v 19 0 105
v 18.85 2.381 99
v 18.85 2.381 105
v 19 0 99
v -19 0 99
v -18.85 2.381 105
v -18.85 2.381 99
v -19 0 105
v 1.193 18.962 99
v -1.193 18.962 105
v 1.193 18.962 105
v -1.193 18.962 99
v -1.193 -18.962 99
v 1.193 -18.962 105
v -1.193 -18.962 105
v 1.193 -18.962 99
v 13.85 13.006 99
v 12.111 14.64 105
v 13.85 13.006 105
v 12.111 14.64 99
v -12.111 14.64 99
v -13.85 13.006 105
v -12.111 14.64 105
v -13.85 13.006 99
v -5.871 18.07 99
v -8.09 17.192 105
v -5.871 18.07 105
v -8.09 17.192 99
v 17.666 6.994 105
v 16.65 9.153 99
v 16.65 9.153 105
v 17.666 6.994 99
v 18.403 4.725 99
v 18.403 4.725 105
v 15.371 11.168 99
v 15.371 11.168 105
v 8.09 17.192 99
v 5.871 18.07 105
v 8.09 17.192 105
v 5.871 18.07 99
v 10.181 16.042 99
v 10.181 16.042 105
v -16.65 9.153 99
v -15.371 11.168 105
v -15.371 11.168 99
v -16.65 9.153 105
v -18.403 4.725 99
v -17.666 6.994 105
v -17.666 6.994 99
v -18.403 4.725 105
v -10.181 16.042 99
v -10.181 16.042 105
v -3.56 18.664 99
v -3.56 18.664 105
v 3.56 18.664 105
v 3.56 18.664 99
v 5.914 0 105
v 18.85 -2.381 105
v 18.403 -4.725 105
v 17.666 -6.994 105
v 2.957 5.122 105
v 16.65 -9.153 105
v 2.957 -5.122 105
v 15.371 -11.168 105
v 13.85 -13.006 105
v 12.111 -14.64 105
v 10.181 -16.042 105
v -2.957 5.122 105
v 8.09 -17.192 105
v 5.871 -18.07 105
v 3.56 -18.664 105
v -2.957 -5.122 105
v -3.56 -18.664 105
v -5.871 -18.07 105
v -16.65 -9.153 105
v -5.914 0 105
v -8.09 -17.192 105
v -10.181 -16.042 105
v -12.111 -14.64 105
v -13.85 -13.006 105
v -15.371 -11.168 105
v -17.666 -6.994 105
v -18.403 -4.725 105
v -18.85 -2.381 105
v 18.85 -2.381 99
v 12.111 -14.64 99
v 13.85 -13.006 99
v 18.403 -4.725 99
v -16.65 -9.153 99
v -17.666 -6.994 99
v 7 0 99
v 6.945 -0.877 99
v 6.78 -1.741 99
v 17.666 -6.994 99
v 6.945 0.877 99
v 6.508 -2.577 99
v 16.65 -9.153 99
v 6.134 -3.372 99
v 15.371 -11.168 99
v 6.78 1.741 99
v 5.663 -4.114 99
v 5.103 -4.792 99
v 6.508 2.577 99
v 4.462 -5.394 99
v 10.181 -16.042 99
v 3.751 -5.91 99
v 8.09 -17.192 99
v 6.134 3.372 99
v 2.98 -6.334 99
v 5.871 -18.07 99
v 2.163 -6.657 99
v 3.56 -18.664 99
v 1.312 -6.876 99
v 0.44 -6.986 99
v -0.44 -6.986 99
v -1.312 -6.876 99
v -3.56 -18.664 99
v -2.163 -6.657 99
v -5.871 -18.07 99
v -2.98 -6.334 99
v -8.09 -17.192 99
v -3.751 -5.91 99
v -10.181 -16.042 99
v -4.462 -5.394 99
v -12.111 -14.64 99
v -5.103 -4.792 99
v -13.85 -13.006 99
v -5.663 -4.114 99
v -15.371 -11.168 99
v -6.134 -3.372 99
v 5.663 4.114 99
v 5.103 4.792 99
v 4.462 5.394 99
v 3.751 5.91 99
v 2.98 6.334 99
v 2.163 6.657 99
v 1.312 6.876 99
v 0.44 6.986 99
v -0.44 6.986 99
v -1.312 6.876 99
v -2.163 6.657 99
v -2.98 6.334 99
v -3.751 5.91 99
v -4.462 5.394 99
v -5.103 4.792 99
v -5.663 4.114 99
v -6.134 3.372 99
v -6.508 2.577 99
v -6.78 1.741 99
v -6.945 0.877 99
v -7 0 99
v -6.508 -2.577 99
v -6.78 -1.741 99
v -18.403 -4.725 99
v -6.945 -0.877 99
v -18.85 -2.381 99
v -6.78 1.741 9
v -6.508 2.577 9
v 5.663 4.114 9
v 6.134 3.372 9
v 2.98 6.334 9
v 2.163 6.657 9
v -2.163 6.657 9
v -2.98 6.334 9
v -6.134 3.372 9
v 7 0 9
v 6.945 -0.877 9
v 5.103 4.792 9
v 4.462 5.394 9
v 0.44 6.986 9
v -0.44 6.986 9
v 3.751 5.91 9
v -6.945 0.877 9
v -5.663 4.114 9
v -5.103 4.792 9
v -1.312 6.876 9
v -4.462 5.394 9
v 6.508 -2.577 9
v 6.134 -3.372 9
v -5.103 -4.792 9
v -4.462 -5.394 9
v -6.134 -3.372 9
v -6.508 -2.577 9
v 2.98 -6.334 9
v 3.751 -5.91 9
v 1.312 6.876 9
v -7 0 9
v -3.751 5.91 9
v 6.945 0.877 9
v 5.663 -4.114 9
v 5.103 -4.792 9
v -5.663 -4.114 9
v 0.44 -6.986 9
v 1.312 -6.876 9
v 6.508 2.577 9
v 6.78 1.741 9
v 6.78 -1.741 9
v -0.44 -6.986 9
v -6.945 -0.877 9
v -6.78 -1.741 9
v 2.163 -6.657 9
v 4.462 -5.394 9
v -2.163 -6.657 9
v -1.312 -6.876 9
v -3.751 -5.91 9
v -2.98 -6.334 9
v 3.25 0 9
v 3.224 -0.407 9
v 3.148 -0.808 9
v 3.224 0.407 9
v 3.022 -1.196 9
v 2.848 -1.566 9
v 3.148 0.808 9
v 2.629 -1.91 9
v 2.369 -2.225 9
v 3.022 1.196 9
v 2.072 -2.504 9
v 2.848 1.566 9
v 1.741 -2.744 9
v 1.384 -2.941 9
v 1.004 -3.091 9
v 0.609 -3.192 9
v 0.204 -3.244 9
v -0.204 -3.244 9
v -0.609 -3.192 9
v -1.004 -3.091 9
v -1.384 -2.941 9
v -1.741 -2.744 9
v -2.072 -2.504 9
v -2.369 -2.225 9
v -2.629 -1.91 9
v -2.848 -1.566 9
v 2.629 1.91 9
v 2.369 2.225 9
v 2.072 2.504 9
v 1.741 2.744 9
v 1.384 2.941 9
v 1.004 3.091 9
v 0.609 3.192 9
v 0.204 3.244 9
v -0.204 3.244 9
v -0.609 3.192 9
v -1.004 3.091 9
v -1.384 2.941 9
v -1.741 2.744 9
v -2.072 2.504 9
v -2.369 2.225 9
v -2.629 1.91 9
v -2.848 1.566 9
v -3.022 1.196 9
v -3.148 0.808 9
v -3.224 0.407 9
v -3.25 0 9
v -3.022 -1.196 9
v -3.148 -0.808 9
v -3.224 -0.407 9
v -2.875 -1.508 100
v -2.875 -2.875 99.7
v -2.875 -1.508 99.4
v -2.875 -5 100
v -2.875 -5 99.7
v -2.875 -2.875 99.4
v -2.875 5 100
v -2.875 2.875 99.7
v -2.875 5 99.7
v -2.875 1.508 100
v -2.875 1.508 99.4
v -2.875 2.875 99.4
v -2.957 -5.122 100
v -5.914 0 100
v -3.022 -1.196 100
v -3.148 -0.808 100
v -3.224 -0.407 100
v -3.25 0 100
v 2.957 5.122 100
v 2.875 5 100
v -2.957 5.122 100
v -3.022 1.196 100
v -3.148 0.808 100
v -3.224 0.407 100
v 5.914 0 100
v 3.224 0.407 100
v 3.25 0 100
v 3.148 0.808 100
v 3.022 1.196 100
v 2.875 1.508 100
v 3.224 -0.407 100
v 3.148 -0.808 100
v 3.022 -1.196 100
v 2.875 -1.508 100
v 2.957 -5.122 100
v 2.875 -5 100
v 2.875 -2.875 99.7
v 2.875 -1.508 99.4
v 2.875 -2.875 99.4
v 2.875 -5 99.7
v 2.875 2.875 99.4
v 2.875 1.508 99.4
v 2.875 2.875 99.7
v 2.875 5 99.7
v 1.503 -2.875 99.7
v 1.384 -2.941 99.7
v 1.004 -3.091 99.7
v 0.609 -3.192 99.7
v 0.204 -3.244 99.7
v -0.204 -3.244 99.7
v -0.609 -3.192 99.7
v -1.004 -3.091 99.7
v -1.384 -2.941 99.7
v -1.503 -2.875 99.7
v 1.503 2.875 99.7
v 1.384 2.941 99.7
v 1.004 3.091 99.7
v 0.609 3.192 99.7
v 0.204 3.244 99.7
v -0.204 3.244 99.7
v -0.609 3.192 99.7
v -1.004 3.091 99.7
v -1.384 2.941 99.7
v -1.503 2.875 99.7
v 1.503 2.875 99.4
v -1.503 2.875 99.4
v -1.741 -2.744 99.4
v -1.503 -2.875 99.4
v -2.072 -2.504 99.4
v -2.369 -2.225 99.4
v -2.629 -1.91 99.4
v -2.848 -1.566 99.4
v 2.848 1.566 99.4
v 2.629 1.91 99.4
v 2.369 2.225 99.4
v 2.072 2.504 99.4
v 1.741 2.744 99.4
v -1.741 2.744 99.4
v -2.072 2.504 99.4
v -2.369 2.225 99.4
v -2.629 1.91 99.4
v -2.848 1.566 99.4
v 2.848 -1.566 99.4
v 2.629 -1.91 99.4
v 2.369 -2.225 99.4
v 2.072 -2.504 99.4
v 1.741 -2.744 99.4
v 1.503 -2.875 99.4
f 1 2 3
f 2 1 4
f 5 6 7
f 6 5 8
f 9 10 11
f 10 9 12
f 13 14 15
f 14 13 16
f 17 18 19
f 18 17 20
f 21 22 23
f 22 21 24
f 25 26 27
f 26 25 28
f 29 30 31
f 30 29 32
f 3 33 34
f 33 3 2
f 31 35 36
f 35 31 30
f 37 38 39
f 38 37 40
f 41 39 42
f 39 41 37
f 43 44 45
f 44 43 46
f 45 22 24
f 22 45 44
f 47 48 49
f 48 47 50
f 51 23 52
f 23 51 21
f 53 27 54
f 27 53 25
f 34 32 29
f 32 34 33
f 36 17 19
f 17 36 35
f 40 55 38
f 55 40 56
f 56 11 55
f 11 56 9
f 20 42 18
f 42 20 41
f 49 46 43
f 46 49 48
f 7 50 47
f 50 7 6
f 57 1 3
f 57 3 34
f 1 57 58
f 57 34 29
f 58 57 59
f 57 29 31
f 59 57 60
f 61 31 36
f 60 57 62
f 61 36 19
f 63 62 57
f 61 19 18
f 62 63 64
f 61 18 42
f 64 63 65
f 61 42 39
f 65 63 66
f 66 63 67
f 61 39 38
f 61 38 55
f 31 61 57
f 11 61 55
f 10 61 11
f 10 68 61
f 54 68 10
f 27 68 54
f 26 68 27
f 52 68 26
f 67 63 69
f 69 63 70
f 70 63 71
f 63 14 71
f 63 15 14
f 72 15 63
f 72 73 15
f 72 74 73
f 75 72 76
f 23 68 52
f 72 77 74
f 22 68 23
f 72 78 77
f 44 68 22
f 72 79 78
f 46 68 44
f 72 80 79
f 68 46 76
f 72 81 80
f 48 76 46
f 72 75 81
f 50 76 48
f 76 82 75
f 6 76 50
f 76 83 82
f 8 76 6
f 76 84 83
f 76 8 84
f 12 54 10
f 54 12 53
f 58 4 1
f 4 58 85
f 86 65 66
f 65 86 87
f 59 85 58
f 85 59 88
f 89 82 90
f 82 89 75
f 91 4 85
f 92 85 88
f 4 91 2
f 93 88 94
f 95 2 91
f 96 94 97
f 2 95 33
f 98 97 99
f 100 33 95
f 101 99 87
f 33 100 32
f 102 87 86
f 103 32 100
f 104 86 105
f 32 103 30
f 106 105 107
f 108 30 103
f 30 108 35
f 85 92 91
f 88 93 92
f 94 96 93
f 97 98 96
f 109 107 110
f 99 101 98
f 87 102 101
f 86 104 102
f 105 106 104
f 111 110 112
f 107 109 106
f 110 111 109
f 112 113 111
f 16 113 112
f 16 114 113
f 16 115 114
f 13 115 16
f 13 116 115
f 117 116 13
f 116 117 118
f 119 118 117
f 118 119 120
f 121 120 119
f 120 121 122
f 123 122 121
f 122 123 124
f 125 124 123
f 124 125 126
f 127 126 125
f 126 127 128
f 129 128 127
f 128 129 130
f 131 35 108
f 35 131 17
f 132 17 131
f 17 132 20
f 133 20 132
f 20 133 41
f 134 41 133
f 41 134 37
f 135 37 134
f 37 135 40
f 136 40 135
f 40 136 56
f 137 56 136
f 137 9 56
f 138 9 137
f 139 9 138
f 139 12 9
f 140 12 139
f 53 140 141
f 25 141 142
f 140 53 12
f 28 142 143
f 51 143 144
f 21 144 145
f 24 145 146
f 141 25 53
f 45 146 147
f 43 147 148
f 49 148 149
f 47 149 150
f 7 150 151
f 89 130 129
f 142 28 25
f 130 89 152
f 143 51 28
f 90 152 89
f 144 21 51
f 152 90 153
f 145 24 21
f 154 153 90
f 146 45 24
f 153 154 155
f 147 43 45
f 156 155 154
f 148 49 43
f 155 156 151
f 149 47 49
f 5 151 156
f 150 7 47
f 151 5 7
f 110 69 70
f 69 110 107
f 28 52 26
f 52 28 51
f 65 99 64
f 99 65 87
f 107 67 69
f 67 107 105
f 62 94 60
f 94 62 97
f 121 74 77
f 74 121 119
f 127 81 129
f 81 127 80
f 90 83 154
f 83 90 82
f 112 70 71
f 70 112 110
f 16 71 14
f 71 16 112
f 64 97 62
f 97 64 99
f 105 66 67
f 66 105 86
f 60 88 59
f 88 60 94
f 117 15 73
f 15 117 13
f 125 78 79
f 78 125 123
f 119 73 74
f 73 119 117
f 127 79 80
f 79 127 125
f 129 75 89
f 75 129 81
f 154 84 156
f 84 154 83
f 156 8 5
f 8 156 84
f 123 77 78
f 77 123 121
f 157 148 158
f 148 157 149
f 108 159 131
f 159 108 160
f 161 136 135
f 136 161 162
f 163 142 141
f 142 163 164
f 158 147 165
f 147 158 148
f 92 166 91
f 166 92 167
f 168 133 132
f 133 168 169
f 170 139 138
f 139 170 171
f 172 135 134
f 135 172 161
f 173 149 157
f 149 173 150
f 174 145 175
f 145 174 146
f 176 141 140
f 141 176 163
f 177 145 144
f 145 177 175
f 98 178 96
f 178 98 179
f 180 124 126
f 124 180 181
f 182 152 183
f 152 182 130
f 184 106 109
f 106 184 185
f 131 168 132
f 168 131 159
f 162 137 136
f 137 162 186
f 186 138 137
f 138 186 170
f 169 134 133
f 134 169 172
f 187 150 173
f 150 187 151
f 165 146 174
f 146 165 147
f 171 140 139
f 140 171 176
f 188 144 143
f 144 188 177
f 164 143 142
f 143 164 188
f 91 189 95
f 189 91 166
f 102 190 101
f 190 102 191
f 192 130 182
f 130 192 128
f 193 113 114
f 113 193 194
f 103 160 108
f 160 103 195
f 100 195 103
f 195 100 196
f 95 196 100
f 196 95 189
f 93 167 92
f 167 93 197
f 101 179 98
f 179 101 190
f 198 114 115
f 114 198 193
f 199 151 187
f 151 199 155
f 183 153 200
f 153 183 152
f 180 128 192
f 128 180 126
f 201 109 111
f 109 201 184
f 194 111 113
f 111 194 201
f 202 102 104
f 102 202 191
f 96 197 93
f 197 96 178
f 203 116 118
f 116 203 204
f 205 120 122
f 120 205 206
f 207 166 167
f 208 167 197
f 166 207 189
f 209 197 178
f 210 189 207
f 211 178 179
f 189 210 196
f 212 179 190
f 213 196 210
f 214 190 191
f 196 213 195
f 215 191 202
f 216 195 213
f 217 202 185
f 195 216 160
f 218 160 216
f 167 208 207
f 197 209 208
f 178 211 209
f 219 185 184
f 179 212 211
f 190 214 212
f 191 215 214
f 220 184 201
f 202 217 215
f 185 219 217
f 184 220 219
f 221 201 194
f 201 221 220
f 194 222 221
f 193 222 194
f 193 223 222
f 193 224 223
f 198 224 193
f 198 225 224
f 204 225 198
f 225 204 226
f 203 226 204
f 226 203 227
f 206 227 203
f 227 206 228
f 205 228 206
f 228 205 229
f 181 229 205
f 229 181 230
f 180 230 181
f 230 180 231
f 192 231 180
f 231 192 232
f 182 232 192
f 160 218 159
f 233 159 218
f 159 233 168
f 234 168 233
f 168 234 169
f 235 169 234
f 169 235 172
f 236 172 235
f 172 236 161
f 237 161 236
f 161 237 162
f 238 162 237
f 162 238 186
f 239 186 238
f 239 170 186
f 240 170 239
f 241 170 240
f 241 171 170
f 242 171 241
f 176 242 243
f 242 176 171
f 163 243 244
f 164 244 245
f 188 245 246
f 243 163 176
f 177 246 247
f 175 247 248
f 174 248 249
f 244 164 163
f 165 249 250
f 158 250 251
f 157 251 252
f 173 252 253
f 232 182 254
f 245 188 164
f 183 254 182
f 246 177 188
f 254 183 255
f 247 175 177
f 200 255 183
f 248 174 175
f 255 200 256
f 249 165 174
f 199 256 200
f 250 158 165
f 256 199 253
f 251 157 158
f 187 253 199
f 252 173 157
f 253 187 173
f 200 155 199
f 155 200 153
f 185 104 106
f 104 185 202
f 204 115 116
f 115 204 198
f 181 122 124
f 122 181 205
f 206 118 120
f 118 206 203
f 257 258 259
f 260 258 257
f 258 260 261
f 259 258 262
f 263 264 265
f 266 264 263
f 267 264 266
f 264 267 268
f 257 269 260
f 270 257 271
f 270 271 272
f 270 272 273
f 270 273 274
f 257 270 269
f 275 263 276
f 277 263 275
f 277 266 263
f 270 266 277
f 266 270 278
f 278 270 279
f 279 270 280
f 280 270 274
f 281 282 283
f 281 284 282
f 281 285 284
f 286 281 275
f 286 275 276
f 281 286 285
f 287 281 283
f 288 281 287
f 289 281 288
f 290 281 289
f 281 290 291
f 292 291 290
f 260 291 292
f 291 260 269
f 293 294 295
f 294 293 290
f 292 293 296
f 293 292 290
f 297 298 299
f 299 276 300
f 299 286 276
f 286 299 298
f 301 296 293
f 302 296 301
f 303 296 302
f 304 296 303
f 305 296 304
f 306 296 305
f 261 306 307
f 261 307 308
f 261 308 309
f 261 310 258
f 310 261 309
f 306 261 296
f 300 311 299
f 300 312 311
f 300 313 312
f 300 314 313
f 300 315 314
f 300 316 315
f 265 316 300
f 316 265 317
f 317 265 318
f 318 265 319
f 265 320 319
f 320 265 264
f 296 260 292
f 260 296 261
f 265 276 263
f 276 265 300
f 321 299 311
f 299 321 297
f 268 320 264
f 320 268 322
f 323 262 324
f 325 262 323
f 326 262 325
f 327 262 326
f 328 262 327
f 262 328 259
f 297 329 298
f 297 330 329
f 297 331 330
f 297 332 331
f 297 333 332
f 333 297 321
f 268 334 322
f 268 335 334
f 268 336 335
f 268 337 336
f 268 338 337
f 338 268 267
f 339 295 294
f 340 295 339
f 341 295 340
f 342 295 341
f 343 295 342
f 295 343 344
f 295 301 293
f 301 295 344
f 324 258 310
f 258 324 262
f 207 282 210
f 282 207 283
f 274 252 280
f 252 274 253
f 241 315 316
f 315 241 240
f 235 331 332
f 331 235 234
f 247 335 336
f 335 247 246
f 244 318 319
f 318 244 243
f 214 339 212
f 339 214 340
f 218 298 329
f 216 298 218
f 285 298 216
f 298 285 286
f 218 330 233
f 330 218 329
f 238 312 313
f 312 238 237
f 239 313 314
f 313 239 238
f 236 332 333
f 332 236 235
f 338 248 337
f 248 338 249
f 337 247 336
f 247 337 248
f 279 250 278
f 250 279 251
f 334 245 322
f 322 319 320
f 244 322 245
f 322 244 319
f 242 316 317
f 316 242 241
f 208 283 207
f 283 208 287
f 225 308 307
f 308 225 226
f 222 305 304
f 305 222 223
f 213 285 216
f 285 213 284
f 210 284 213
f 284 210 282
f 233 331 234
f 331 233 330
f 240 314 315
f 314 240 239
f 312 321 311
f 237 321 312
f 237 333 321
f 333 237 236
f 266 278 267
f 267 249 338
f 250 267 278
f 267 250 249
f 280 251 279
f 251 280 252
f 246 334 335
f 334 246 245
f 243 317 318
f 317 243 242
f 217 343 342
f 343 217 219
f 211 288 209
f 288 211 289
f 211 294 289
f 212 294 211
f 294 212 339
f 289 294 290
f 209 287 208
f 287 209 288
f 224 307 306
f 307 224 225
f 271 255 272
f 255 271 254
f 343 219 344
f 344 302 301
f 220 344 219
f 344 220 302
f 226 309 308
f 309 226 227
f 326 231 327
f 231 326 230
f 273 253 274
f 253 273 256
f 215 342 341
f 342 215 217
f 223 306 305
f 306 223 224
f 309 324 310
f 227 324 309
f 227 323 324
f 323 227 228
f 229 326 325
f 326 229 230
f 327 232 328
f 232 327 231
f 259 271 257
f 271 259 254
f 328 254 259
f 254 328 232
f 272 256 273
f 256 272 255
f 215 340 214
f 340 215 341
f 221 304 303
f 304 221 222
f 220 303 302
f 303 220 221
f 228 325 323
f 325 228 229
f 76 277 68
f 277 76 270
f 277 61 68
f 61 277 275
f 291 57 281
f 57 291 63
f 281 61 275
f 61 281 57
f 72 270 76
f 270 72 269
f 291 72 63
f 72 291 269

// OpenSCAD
$fn = 50;


difference() {
	union() {
		translate(v = [0, 0, 99.0000000000]) {
			cylinder(h = 6, r = 19.0000000000);
		}
		translate(v = [0, 0, 9.0000000000]) {
			cylinder(h = 96, r = 7.0000000000);
		}
	}
	union() {
		translate(v = [0, 0, 105]) {
			rotate(a = [0, 0, 0]) {
				difference() {
					union() {
						#translate(v = [-2.8750000000, -5.0000000000, -5.3000000000]) {
							cube(size = [5.7500000000, 10, 0.3000000000]);
						}
						#translate(v = [-2.8750000000, -2.8750000000, -5.6000000000]) {
							cube(size = [5.7500000000, 5.7500000000, 0.3000000000]);
						}
						#translate(v = [-2.8750000000, -5.0000000000, 0]) {
							cube(size = [5.7500000000, 10, 0.3000000000]);
						}
						#translate(v = [-2.8750000000, -2.8750000000, 0.3000000000]) {
							cube(size = [5.7500000000, 5.7500000000, 0.3000000000]);
						}
						#translate(v = [0, 0, -100.0000000000]) {
							cylinder(h = 200, r = 3.2500000000);
						}
						translate(v = [0, 0, -5]) {
							#linear_extrude(height = 5) {
								polygon(points = [[5.9142500000, 0.0000000000], [2.9571250000, 5.1218907443], [-2.9571250000, 5.1218907443], [-5.9142500000, 0.0000000000], [-2.9571250000, -5.1218907443], [2.9571250000, -5.1218907443]]);
							}
						}
						#translate(v = [-2.8750000000, -5.0000000000, -5.3000000000]) {
							cube(size = [5.7500000000, 10, 0.3000000000]);
						}
						#translate(v = [-2.8750000000, -2.8750000000, -5.6000000000]) {
							cube(size = [5.7500000000, 5.7500000000, 0.3000000000]);
						}
						#translate(v = [-2.8750000000, -5.0000000000, 0]) {
							cube(size = [5.7500000000, 10, 0.3000000000]);
						}
						#translate(v = [-2.8750000000, -2.8750000000, 0.3000000000]) {
							cube(size = [5.7500000000, 5.7500000000, 0.3000000000]);
						}
						#translate(v = [0, 0, -100.0000000000]) {
							cylinder(h = 200, r = 3.2500000000);
						}
						#translate(v = [-2.8750000000, -5.0000000000, -5.3000000000]) {
							cube(size = [5.7500000000, 10, 0.3000000000]);
						}
						#translate(v = [-2.8750000000, -2.8750000000, -5.6000000000]) {
							cube(size = [5.7500000000, 5.7500000000, 0.3000000000]);
						}
						#translate(v = [-2.8750000000, -5.0000000000, 0]) {
							cube(size = [5.7500000000, 10, 0.3000000000]);
						}
						#translate(v = [-2.8750000000, -2.8750000000, 0.3000000000]) {
							cube(size = [5.7500000000, 5.7500000000, 0.3000000000]);
						}
						#translate(v = [0, 0, -100.0000000000]) {
							cylinder(h = 200, r = 3.2500000000);
						}
					}
					union();
				}
			}
		}
		#translate(v = [0, 0, -100.0000000000]) {
			cylinder(h = 200, r = 3.2500000000);
		}
	}
}
